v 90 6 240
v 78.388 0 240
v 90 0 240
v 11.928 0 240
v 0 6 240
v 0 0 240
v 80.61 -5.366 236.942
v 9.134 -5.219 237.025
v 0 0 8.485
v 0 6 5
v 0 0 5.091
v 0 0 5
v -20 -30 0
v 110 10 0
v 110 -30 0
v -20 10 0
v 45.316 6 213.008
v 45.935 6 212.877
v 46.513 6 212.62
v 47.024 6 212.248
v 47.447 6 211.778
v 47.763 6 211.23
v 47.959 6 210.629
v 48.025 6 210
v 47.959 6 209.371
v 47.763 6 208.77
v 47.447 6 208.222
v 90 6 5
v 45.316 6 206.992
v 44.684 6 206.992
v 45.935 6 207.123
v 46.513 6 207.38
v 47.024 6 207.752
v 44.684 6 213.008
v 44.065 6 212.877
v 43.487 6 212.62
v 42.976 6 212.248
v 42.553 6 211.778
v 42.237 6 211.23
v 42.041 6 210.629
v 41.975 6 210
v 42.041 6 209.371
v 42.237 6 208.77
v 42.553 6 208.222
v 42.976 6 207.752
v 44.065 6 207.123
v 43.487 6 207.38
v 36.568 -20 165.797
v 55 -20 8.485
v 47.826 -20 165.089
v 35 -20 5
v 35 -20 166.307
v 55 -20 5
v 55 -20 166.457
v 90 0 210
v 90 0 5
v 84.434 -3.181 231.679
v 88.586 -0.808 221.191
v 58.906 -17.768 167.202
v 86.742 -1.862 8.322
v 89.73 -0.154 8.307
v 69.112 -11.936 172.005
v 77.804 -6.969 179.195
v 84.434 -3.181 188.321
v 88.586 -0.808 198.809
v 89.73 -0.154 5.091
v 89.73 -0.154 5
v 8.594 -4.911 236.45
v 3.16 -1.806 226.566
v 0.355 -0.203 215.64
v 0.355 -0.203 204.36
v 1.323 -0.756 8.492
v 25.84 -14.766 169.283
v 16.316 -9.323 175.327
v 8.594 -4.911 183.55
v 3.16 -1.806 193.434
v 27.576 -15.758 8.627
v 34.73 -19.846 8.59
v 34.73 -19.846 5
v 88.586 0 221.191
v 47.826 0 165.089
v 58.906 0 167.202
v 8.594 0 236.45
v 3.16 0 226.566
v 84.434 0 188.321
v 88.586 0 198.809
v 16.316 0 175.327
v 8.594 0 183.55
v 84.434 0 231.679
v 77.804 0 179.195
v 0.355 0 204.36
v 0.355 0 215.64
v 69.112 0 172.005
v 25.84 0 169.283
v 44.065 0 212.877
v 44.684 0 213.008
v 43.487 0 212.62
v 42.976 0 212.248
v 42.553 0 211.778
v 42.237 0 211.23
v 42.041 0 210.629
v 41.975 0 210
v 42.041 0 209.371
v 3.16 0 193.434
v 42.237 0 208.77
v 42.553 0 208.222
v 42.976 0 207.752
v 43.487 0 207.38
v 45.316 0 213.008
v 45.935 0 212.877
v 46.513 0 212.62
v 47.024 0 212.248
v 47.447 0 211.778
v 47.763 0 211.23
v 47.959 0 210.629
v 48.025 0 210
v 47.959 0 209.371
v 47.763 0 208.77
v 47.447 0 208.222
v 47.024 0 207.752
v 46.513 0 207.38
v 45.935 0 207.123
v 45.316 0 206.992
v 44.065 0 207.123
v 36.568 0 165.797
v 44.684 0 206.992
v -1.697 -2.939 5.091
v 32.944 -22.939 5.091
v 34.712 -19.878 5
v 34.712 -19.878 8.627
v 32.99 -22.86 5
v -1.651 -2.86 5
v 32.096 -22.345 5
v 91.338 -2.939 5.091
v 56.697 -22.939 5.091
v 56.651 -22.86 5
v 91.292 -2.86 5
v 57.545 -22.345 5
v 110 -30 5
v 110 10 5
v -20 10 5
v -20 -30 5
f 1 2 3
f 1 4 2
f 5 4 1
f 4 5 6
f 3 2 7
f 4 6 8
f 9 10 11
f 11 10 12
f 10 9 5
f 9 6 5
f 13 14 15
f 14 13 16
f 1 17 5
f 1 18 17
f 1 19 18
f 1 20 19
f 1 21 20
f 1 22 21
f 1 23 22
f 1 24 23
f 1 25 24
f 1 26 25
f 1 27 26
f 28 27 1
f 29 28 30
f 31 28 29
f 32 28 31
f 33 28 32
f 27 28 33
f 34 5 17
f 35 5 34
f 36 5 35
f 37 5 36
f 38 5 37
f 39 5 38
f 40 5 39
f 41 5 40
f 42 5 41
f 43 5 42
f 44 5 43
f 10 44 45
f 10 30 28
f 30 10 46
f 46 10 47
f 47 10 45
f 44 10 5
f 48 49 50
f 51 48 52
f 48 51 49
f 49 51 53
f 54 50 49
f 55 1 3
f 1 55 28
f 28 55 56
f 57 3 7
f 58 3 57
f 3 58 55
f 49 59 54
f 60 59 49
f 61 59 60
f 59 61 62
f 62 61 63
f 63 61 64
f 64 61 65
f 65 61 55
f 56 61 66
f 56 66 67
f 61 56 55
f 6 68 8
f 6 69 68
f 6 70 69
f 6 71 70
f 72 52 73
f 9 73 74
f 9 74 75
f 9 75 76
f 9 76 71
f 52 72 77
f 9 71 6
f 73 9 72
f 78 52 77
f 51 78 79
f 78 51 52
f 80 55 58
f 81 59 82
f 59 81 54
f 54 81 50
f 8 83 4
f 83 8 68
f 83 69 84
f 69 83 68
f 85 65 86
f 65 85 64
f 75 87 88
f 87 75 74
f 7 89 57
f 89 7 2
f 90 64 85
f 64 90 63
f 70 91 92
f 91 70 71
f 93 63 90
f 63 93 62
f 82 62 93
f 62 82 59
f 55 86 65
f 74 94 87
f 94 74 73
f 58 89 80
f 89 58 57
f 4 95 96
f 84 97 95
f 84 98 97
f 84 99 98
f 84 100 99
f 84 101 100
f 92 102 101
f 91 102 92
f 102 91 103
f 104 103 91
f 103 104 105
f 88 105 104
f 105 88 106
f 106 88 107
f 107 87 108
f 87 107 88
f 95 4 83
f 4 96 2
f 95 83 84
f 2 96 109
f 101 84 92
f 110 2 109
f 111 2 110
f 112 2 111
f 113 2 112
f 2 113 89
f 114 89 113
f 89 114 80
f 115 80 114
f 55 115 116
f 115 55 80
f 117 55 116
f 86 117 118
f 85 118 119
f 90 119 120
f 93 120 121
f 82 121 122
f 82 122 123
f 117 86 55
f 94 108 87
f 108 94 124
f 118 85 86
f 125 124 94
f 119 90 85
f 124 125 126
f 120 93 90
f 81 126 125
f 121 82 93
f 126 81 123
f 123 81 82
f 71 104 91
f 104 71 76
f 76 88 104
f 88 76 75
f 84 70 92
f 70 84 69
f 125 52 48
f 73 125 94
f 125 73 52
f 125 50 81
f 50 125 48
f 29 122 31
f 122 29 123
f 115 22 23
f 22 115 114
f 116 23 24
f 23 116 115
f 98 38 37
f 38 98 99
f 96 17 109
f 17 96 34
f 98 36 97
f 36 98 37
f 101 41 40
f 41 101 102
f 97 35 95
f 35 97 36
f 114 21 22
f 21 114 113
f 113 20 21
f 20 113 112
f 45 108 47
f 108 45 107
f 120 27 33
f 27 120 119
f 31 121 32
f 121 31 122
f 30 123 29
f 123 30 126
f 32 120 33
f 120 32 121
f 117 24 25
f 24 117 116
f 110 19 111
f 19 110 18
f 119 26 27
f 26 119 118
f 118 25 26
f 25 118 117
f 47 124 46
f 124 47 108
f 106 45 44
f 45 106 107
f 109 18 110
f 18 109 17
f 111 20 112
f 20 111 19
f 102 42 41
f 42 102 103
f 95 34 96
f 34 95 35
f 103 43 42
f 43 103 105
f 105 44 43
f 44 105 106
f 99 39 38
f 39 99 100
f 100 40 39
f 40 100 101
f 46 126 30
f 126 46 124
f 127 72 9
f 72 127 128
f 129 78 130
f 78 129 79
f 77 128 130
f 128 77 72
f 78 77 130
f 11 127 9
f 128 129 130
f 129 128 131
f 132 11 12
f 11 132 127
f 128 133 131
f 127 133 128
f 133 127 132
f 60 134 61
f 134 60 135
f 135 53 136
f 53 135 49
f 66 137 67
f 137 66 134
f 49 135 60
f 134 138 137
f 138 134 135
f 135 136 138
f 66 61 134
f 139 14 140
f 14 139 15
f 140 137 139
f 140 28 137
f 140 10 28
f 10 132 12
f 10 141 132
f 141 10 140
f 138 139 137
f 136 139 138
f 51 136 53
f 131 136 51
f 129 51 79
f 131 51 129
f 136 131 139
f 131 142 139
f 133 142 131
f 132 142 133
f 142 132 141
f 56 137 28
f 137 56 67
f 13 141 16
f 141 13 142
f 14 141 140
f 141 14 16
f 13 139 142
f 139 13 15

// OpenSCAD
difference(){
    hull(){
        cube([90,6,240]);
        translate([35,-20,0])
        cube([20,20,9*25.4]);
    }
    // access hole for mounting bolt 
    translate([45,0,210])
    rotate([90,0,0])
    cylinder(d=90,h=50,$fn=25);

    // mounting hole for screw
    translate([45,20,210])
    rotate([90,0,0])
    cylinder(d=6.05,h=50, $fn=30);
}


// fillets
rotate([0,0,-30])
rotate([45,0,0])
translate([0,1.2,1])cube([40,5,5]);
translate([55,-20,0])
rotate([0,0,30])
rotate([45,0,0])
translate([0,1.2,1])cube([40,5,5]);


// base plate
translate([-20,-30,0])
cube([130,40,5]);
